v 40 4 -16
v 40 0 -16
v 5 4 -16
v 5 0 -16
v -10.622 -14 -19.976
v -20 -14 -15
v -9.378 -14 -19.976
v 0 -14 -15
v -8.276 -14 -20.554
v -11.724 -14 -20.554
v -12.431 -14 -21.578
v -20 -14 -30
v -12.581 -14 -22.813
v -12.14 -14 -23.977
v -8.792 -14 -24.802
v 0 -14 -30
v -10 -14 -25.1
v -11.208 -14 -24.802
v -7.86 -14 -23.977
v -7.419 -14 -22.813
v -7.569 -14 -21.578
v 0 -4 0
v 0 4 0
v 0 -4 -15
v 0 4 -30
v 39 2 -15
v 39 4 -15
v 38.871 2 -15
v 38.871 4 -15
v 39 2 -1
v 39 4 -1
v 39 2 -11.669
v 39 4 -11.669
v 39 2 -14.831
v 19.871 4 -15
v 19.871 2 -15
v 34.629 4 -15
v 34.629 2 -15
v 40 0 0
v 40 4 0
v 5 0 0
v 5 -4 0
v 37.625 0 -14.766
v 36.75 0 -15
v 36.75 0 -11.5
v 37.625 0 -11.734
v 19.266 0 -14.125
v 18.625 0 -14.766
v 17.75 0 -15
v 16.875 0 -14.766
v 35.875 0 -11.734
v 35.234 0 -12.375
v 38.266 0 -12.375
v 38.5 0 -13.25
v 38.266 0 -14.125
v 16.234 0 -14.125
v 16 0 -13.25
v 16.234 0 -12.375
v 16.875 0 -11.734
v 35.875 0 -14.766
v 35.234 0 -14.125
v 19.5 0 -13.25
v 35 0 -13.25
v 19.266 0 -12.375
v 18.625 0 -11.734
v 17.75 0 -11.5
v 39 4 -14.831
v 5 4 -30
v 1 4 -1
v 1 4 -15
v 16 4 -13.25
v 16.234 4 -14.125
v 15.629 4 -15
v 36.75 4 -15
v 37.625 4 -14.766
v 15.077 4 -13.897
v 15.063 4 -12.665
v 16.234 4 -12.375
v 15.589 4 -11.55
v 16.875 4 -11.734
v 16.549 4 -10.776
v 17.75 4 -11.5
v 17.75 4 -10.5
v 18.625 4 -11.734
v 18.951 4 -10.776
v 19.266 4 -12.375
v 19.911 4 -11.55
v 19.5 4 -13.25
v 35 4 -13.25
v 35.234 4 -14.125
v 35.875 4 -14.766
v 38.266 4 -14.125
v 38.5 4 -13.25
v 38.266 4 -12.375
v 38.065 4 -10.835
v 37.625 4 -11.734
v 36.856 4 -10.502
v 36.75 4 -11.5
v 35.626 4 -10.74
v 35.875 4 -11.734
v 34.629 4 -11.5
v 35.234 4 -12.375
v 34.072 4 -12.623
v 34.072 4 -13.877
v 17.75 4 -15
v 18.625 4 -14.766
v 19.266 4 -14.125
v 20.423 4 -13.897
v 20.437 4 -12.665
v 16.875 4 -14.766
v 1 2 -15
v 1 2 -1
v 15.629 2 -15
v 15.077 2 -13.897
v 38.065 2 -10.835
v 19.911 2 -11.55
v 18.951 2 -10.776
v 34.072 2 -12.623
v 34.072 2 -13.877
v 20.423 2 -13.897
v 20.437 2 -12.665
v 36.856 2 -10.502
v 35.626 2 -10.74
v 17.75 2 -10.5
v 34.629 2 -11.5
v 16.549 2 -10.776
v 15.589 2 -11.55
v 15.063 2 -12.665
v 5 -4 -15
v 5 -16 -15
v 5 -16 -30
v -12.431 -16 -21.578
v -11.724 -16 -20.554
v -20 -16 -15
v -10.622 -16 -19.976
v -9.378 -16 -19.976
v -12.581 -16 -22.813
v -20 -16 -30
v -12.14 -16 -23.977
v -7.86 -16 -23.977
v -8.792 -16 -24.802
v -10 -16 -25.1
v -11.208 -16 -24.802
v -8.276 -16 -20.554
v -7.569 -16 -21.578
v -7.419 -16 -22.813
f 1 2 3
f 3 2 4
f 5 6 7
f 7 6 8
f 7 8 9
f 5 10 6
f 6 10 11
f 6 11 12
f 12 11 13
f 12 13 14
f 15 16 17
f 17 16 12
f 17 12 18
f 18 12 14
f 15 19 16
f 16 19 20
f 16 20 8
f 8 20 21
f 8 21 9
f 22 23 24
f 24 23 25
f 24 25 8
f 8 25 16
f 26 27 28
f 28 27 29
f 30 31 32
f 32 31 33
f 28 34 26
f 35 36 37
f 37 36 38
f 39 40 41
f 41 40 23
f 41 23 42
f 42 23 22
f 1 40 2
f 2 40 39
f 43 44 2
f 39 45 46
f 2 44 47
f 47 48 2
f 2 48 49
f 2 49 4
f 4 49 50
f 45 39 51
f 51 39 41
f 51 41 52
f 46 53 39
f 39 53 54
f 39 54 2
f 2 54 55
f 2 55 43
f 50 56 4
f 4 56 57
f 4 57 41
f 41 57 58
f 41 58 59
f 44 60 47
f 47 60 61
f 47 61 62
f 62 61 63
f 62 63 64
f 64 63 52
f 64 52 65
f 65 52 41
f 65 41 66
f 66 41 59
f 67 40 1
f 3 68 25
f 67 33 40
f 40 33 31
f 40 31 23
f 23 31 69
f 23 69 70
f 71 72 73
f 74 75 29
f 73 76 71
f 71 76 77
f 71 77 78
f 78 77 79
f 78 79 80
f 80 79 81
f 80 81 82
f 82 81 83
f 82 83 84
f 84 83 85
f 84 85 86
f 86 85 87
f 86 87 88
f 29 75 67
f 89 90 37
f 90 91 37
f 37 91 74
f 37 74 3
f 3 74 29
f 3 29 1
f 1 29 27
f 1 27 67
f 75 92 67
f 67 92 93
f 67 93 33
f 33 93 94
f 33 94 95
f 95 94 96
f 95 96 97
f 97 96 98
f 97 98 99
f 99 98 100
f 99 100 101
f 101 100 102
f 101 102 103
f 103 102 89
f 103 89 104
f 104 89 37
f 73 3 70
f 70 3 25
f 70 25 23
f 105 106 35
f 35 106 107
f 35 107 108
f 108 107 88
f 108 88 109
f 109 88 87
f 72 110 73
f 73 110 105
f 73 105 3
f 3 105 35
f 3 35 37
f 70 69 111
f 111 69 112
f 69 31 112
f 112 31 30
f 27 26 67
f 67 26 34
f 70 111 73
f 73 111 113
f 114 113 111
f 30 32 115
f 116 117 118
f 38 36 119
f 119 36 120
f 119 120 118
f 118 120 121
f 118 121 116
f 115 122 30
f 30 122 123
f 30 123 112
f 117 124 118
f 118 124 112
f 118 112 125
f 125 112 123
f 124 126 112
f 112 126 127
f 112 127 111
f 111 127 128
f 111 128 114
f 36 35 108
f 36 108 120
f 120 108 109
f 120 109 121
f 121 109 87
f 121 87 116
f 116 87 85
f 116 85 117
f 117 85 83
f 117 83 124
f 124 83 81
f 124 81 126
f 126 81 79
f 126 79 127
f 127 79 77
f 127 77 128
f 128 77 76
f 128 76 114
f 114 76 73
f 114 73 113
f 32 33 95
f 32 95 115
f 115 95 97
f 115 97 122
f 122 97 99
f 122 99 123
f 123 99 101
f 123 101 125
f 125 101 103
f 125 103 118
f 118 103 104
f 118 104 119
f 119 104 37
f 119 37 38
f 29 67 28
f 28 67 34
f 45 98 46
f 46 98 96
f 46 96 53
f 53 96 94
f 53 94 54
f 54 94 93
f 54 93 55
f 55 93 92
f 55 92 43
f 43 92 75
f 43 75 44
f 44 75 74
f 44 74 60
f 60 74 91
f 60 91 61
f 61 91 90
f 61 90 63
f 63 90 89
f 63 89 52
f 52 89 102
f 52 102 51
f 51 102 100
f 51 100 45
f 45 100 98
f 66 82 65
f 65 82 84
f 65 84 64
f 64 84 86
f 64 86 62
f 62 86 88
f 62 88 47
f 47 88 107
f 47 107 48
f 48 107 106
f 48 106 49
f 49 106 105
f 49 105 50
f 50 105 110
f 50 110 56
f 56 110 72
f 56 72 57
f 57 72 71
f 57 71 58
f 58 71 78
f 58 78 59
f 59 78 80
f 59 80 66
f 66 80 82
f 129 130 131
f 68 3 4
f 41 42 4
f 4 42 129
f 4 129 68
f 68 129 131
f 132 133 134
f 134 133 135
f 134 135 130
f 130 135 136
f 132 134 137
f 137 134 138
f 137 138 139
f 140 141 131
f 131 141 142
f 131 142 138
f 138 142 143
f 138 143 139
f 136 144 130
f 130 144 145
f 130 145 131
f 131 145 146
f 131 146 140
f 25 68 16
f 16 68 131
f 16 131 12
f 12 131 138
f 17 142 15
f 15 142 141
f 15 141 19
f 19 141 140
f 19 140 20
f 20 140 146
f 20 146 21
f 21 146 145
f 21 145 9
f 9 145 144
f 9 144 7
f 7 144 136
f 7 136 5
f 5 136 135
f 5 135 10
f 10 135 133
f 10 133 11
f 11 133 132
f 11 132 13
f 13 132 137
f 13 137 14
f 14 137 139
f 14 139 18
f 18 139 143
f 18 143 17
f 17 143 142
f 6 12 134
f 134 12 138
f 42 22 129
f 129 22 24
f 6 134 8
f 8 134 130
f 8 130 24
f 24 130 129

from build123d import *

# Parameters (mm, degrees)
SKETCH1_W           = 40
SKETCH1_H           = 16
BOSS_EXTRUDE1_DEPTH = 2
SKETCH2_W           = 40
SKETCH2_H           = 16
SKETCH2_W_2         = 38
SKETCH2_H_2         = 14
BOSS_EXTRUDE2_DEPTH = 2
BOSS_EXTRUDE5_REACH = 45.267
SKETCH3_R           = 2.75
SKETCH4_R           = 1.75
CUT_EXTRUDE1_DEPTH  = 44.266615306
SKETCH5_W           = 5
SKETCH5_H           = 16
BOSS_EXTRUDE6_DEPTH = 16
SKETCH6_W           = 20
SKETCH6_H           = 15
SKETCH6_R           = 2.6
BOSS_EXTRUDE7_DEPTH = 2
SKETCH7_W           = 5
SKETCH7_H           = 1
BOSS_EXTRUDE8_DEPTH = 2
SKETCH9_W           = 11.830057264
SKETCH9_H           = 8
CUT_EXTRUDE3_DEPTH  = 49.795491595
SKETCH10_W          = 5
SKETCH10_H          = 18
BOSS_EXTRUDE9_DEPTH = 14
SKETCH11_W          = 3.17
SKETCH11_H          = 8
CUT_EXTRUDE4_DEPTH  = 49.795491595


with BuildPart() as part:
    # Sketch1 → Boss-Extrude1 (new body)
    with BuildSketch(Plane(origin=(0, 0, 0), x_dir=(1, 0, 0), z_dir=(0, 1, 0))):
        with Locations((20, 8)):
            Rectangle(SKETCH1_W, SKETCH1_H)
    extrude(amount=BOSS_EXTRUDE1_DEPTH)

    # Sketch2 → Boss-Extrude2 (add)
    with BuildSketch(Plane(origin=(0, 2, 0), x_dir=(1, 0, 0), z_dir=(0, 1, 0))):
        with Locations((20, 8)):
            Rectangle(SKETCH2_W, SKETCH2_H)
        with Locations((20, 8)):
            Rectangle(SKETCH2_W_2, SKETCH2_H_2, mode=Mode.SUBTRACT)
    extrude(amount=BOSS_EXTRUDE2_DEPTH)

    # Sketch3 → Boss-Extrude5 (add, up to next)
    with BuildSketch(Plane(origin=(0, 4, 0), x_dir=(1, 0, 0), z_dir=(0, 1, 0)), mode=Mode.PRIVATE) as boss_extrude5_sk1:
        with Locations((17.75, 13.25)):
            Circle(SKETCH3_R)
    boss_extrude5_tool1 = extrude(boss_extrude5_sk1.sketch, amount=-BOSS_EXTRUDE5_REACH, mode=Mode.PRIVATE) - part.part
    # Sketch3 → Boss-Extrude5 (add, up to next)
    with BuildSketch(Plane(origin=(0, 4, 0), x_dir=(1, 0, 0), z_dir=(0, 1, 0)), mode=Mode.PRIVATE) as boss_extrude5_sk2:
        with Locations((36.75, 13.25)):
            Circle(SKETCH3_R)
    boss_extrude5_tool2 = extrude(boss_extrude5_sk2.sketch, amount=-BOSS_EXTRUDE5_REACH, mode=Mode.PRIVATE) - part.part
    add(boss_extrude5_tool1.solids().sort_by_distance((17.75, 4, -13.25))[0])
    add(boss_extrude5_tool2.solids().sort_by_distance((36.75, 4, -13.25))[0])

    # Sketch4 → Cut-Extrude1 (cut, through all)
    with BuildSketch(Plane(origin=(0, 4, 0), x_dir=(1, 0, 0), z_dir=(0, 1, 0))):
        with Locations(Location((17.75, 13.25, 0), (0, 0, 270))):
            Circle(SKETCH4_R)
        with Locations(Location((36.75, 13.25, 0), (0, 0, 270))):
            Circle(SKETCH4_R)
    extrude(amount=-CUT_EXTRUDE1_DEPTH, mode=Mode.SUBTRACT)

    # Sketch5 → Boss-Extrude6 (add)
    with BuildSketch(Plane(origin=(0, 0, 0), x_dir=(-1, 0, 0), z_dir=(0, -1, 0))):
        with Locations((-2.5, 8)):
            Rectangle(SKETCH5_W, SKETCH5_H)
    extrude(amount=BOSS_EXTRUDE6_DEPTH)

    # Sketch6 → Boss-Extrude7 (add)
    # profile 1 of 2: a face of its own
    with BuildSketch(Plane.XZ.offset(16)):
        Polygon((5, -30), (5, 0), (0, 0), (0, -15), (0, -30), align=None)
    # profile 2 of 2: a face of its own
    with BuildSketch(Plane.XZ.offset(16)):
        with Locations((-10, -22.5)):
            Rectangle(SKETCH6_W, SKETCH6_H)
        with Locations(Location((-10, -22.5, 0), (0, 0, 270))):
            Circle(SKETCH6_R, mode=Mode.SUBTRACT)
    extrude(amount=-BOSS_EXTRUDE7_DEPTH)

    # Sketch7 → Boss-Extrude8 (add)
    with BuildSketch(Plane(origin=(0, -14, 0), x_dir=(1, 0, 0), z_dir=(0, 1, 0))):
        with Locations((2.5, 15.5)):
            Rectangle(SKETCH7_W, SKETCH7_H)
    extrude(amount=BOSS_EXTRUDE8_DEPTH)

    # Sketch9 → Cut-Extrude3 (cut, through all)
    with BuildSketch(Plane(origin=(5, 0, 0), x_dir=(0, 0, -1), z_dir=(1, 0, 0))):
        with Locations((5.915028632, -12)):
            Rectangle(SKETCH9_W, SKETCH9_H)
    extrude(amount=-CUT_EXTRUDE3_DEPTH, mode=Mode.SUBTRACT)

    # Sketch10 → Boss-Extrude9 (add)
    with BuildSketch(Plane(origin=(0, 0, -16), x_dir=(-1, 0, 0), z_dir=(0, 0, -1))):
        with Locations((-2.5, -5)):
            Rectangle(SKETCH10_W, SKETCH10_H)
    extrude(amount=BOSS_EXTRUDE9_DEPTH)

    # Sketch11 → Cut-Extrude4 (cut, through all)
    with BuildSketch(Plane(origin=(5, 0, 0), x_dir=(0, 0, -1), z_dir=(1, 0, 0))):
        Polygon((0, -8), (11.830057264, -8), (15.000057264, -8), (15.000057264, -4), (0, -4), align=None)
        with Locations((13.415057264, -12)):
            Rectangle(SKETCH11_W, SKETCH11_H)
    extrude(amount=-CUT_EXTRUDE4_DEPTH, mode=Mode.SUBTRACT)


solid = part.part
